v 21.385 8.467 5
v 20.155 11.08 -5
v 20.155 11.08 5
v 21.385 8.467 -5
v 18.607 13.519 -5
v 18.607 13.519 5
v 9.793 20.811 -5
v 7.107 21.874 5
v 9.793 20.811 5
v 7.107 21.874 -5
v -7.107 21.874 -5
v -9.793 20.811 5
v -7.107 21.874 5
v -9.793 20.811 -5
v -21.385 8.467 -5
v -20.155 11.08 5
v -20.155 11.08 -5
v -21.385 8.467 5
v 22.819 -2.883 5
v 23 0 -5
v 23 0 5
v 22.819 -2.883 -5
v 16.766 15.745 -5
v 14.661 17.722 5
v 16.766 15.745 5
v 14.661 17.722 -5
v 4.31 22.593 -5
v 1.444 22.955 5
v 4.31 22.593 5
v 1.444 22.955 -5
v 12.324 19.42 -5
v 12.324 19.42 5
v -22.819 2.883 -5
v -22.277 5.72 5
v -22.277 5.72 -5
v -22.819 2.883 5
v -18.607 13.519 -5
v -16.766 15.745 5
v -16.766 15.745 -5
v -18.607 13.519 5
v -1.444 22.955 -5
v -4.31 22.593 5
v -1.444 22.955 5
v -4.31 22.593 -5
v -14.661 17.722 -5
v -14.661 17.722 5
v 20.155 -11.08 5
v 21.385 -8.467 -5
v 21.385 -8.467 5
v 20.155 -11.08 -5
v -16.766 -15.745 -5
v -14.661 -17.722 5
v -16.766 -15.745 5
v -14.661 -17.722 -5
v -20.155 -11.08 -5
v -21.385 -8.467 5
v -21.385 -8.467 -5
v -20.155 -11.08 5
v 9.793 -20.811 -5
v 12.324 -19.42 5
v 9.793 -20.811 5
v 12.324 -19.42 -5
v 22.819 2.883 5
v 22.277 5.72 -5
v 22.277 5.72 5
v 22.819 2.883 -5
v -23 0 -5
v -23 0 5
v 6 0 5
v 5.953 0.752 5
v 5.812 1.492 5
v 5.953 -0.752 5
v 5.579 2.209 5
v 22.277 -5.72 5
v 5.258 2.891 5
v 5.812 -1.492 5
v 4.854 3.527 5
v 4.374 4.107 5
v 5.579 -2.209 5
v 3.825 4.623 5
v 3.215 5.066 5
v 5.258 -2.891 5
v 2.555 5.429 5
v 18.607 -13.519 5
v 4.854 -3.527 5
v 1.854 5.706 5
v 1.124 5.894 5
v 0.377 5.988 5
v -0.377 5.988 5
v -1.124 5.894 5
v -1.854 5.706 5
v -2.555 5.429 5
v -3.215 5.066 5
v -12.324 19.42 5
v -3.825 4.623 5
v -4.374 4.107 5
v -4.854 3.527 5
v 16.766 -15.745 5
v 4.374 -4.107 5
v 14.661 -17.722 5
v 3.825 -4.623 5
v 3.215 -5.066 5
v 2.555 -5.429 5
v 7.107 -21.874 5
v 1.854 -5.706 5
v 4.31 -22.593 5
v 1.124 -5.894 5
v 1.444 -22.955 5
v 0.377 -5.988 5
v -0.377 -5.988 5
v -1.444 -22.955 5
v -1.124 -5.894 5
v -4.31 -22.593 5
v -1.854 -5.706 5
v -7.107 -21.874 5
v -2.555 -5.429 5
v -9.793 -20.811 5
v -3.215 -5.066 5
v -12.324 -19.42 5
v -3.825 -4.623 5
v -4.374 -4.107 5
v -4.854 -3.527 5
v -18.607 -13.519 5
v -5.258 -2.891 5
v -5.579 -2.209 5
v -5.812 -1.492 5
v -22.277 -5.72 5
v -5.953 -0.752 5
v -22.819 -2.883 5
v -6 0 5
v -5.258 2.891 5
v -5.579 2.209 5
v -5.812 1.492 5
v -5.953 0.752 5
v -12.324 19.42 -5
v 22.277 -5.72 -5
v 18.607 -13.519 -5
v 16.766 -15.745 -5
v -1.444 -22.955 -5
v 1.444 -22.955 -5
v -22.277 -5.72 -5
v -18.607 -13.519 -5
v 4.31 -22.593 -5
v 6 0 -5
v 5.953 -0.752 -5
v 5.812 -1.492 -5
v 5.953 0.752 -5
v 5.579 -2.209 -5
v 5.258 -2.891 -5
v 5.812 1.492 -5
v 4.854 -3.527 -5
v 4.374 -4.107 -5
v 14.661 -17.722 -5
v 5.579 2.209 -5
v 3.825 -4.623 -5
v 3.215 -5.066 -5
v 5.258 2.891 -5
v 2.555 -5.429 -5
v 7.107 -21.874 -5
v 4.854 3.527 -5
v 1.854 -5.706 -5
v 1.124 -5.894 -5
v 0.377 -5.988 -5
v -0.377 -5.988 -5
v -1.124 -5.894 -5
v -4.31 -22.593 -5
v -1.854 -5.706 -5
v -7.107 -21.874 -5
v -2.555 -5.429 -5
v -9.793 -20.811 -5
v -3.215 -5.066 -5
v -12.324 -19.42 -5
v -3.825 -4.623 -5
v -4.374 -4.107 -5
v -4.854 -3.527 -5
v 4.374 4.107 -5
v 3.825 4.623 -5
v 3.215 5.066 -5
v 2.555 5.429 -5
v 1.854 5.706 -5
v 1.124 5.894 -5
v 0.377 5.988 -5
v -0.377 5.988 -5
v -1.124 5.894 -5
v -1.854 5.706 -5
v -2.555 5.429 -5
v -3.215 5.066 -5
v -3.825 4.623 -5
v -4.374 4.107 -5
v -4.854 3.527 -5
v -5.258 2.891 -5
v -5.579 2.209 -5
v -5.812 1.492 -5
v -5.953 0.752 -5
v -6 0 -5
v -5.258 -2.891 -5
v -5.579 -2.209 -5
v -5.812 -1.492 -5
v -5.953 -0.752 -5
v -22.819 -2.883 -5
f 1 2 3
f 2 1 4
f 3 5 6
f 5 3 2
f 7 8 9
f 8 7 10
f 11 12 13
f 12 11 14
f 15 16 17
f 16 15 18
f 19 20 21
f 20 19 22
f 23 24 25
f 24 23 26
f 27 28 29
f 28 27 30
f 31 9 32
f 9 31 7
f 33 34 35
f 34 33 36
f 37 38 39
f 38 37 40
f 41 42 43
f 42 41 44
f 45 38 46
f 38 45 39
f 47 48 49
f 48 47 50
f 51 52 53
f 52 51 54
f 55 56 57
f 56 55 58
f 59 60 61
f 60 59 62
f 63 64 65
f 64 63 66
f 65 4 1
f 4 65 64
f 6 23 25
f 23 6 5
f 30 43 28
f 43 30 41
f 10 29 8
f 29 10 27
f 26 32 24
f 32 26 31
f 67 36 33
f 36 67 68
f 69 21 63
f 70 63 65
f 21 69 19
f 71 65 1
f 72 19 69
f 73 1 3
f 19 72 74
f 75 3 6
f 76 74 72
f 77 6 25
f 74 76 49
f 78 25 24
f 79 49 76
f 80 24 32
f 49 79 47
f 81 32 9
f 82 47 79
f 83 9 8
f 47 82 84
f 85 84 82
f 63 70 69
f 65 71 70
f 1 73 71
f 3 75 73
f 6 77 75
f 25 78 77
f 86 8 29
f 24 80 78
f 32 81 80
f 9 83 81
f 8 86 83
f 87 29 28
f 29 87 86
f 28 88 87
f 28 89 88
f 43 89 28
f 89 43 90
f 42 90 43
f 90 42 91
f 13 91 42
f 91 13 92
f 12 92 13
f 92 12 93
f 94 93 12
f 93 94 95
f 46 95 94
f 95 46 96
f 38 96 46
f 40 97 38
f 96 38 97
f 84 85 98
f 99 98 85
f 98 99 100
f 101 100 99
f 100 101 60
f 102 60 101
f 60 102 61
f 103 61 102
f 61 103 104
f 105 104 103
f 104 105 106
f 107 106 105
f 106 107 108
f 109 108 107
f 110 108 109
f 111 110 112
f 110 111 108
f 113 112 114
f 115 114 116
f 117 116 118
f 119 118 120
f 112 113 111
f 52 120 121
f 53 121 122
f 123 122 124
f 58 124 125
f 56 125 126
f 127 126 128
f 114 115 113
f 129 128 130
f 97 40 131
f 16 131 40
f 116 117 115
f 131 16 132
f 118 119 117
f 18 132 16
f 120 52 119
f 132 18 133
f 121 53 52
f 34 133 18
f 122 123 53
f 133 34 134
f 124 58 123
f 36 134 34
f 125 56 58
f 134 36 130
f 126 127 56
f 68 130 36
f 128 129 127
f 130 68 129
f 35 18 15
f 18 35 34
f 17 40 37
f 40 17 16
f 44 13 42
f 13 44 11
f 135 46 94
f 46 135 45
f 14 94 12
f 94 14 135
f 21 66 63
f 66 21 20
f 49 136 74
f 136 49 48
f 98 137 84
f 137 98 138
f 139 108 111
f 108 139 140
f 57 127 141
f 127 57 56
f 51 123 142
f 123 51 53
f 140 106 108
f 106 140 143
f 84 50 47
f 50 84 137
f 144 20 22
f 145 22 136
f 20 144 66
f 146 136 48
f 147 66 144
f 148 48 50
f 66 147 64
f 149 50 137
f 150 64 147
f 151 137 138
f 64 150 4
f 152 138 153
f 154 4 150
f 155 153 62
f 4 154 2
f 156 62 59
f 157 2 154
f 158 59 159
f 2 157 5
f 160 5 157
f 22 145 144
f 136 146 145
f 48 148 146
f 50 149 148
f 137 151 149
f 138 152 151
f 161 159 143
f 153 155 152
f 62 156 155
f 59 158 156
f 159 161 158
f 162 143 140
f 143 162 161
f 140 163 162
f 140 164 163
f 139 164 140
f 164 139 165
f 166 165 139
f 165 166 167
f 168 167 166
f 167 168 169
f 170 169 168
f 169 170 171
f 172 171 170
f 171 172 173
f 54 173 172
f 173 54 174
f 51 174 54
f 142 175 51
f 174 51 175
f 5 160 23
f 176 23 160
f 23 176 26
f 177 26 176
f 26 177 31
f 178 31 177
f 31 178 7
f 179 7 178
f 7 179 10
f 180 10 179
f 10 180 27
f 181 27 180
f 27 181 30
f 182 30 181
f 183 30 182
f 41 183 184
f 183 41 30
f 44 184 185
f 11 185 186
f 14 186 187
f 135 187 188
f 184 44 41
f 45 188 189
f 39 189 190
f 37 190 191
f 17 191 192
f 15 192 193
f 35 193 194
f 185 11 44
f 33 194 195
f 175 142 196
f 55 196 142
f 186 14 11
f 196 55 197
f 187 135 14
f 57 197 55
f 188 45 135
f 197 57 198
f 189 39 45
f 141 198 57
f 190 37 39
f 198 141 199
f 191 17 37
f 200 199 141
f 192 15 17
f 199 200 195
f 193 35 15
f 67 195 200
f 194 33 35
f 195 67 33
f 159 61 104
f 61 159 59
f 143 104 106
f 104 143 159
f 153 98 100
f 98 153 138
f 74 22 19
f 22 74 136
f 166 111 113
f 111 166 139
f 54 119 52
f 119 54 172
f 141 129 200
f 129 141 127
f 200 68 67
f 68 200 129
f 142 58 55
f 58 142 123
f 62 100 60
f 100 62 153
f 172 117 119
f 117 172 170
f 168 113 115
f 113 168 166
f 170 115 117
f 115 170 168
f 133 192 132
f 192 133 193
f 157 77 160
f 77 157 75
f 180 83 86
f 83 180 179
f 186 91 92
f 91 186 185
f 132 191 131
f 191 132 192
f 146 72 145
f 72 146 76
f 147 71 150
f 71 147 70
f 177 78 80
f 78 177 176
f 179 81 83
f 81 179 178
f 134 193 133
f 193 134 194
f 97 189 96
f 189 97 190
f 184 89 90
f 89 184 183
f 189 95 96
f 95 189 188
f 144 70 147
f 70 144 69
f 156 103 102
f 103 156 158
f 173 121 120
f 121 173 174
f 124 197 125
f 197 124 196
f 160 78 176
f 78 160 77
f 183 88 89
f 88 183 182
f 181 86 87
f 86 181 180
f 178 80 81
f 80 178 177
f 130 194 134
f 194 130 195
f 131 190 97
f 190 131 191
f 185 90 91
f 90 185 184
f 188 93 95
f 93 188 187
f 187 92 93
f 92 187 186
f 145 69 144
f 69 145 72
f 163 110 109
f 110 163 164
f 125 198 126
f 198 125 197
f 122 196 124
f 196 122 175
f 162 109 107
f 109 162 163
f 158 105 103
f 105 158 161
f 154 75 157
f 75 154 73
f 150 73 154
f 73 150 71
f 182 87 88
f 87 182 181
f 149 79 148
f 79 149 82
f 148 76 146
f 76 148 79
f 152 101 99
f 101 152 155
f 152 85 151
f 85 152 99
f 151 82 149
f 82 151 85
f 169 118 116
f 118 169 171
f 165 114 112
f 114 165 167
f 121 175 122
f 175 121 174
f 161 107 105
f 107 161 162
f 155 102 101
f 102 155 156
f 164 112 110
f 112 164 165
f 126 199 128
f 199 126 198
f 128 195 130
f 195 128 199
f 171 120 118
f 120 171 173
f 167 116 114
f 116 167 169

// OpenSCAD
$fn = 50;


difference() {
	union() {
		translate(v = [0, 0, -5.0000000000]) {
			cylinder(h = 10, r = 23.0000000000);
		}
	}
	union() {
		translate(v = [0, 0, -100.0000000000]) {
			cylinder(h = 200, r = 6);
		}
	}
}
